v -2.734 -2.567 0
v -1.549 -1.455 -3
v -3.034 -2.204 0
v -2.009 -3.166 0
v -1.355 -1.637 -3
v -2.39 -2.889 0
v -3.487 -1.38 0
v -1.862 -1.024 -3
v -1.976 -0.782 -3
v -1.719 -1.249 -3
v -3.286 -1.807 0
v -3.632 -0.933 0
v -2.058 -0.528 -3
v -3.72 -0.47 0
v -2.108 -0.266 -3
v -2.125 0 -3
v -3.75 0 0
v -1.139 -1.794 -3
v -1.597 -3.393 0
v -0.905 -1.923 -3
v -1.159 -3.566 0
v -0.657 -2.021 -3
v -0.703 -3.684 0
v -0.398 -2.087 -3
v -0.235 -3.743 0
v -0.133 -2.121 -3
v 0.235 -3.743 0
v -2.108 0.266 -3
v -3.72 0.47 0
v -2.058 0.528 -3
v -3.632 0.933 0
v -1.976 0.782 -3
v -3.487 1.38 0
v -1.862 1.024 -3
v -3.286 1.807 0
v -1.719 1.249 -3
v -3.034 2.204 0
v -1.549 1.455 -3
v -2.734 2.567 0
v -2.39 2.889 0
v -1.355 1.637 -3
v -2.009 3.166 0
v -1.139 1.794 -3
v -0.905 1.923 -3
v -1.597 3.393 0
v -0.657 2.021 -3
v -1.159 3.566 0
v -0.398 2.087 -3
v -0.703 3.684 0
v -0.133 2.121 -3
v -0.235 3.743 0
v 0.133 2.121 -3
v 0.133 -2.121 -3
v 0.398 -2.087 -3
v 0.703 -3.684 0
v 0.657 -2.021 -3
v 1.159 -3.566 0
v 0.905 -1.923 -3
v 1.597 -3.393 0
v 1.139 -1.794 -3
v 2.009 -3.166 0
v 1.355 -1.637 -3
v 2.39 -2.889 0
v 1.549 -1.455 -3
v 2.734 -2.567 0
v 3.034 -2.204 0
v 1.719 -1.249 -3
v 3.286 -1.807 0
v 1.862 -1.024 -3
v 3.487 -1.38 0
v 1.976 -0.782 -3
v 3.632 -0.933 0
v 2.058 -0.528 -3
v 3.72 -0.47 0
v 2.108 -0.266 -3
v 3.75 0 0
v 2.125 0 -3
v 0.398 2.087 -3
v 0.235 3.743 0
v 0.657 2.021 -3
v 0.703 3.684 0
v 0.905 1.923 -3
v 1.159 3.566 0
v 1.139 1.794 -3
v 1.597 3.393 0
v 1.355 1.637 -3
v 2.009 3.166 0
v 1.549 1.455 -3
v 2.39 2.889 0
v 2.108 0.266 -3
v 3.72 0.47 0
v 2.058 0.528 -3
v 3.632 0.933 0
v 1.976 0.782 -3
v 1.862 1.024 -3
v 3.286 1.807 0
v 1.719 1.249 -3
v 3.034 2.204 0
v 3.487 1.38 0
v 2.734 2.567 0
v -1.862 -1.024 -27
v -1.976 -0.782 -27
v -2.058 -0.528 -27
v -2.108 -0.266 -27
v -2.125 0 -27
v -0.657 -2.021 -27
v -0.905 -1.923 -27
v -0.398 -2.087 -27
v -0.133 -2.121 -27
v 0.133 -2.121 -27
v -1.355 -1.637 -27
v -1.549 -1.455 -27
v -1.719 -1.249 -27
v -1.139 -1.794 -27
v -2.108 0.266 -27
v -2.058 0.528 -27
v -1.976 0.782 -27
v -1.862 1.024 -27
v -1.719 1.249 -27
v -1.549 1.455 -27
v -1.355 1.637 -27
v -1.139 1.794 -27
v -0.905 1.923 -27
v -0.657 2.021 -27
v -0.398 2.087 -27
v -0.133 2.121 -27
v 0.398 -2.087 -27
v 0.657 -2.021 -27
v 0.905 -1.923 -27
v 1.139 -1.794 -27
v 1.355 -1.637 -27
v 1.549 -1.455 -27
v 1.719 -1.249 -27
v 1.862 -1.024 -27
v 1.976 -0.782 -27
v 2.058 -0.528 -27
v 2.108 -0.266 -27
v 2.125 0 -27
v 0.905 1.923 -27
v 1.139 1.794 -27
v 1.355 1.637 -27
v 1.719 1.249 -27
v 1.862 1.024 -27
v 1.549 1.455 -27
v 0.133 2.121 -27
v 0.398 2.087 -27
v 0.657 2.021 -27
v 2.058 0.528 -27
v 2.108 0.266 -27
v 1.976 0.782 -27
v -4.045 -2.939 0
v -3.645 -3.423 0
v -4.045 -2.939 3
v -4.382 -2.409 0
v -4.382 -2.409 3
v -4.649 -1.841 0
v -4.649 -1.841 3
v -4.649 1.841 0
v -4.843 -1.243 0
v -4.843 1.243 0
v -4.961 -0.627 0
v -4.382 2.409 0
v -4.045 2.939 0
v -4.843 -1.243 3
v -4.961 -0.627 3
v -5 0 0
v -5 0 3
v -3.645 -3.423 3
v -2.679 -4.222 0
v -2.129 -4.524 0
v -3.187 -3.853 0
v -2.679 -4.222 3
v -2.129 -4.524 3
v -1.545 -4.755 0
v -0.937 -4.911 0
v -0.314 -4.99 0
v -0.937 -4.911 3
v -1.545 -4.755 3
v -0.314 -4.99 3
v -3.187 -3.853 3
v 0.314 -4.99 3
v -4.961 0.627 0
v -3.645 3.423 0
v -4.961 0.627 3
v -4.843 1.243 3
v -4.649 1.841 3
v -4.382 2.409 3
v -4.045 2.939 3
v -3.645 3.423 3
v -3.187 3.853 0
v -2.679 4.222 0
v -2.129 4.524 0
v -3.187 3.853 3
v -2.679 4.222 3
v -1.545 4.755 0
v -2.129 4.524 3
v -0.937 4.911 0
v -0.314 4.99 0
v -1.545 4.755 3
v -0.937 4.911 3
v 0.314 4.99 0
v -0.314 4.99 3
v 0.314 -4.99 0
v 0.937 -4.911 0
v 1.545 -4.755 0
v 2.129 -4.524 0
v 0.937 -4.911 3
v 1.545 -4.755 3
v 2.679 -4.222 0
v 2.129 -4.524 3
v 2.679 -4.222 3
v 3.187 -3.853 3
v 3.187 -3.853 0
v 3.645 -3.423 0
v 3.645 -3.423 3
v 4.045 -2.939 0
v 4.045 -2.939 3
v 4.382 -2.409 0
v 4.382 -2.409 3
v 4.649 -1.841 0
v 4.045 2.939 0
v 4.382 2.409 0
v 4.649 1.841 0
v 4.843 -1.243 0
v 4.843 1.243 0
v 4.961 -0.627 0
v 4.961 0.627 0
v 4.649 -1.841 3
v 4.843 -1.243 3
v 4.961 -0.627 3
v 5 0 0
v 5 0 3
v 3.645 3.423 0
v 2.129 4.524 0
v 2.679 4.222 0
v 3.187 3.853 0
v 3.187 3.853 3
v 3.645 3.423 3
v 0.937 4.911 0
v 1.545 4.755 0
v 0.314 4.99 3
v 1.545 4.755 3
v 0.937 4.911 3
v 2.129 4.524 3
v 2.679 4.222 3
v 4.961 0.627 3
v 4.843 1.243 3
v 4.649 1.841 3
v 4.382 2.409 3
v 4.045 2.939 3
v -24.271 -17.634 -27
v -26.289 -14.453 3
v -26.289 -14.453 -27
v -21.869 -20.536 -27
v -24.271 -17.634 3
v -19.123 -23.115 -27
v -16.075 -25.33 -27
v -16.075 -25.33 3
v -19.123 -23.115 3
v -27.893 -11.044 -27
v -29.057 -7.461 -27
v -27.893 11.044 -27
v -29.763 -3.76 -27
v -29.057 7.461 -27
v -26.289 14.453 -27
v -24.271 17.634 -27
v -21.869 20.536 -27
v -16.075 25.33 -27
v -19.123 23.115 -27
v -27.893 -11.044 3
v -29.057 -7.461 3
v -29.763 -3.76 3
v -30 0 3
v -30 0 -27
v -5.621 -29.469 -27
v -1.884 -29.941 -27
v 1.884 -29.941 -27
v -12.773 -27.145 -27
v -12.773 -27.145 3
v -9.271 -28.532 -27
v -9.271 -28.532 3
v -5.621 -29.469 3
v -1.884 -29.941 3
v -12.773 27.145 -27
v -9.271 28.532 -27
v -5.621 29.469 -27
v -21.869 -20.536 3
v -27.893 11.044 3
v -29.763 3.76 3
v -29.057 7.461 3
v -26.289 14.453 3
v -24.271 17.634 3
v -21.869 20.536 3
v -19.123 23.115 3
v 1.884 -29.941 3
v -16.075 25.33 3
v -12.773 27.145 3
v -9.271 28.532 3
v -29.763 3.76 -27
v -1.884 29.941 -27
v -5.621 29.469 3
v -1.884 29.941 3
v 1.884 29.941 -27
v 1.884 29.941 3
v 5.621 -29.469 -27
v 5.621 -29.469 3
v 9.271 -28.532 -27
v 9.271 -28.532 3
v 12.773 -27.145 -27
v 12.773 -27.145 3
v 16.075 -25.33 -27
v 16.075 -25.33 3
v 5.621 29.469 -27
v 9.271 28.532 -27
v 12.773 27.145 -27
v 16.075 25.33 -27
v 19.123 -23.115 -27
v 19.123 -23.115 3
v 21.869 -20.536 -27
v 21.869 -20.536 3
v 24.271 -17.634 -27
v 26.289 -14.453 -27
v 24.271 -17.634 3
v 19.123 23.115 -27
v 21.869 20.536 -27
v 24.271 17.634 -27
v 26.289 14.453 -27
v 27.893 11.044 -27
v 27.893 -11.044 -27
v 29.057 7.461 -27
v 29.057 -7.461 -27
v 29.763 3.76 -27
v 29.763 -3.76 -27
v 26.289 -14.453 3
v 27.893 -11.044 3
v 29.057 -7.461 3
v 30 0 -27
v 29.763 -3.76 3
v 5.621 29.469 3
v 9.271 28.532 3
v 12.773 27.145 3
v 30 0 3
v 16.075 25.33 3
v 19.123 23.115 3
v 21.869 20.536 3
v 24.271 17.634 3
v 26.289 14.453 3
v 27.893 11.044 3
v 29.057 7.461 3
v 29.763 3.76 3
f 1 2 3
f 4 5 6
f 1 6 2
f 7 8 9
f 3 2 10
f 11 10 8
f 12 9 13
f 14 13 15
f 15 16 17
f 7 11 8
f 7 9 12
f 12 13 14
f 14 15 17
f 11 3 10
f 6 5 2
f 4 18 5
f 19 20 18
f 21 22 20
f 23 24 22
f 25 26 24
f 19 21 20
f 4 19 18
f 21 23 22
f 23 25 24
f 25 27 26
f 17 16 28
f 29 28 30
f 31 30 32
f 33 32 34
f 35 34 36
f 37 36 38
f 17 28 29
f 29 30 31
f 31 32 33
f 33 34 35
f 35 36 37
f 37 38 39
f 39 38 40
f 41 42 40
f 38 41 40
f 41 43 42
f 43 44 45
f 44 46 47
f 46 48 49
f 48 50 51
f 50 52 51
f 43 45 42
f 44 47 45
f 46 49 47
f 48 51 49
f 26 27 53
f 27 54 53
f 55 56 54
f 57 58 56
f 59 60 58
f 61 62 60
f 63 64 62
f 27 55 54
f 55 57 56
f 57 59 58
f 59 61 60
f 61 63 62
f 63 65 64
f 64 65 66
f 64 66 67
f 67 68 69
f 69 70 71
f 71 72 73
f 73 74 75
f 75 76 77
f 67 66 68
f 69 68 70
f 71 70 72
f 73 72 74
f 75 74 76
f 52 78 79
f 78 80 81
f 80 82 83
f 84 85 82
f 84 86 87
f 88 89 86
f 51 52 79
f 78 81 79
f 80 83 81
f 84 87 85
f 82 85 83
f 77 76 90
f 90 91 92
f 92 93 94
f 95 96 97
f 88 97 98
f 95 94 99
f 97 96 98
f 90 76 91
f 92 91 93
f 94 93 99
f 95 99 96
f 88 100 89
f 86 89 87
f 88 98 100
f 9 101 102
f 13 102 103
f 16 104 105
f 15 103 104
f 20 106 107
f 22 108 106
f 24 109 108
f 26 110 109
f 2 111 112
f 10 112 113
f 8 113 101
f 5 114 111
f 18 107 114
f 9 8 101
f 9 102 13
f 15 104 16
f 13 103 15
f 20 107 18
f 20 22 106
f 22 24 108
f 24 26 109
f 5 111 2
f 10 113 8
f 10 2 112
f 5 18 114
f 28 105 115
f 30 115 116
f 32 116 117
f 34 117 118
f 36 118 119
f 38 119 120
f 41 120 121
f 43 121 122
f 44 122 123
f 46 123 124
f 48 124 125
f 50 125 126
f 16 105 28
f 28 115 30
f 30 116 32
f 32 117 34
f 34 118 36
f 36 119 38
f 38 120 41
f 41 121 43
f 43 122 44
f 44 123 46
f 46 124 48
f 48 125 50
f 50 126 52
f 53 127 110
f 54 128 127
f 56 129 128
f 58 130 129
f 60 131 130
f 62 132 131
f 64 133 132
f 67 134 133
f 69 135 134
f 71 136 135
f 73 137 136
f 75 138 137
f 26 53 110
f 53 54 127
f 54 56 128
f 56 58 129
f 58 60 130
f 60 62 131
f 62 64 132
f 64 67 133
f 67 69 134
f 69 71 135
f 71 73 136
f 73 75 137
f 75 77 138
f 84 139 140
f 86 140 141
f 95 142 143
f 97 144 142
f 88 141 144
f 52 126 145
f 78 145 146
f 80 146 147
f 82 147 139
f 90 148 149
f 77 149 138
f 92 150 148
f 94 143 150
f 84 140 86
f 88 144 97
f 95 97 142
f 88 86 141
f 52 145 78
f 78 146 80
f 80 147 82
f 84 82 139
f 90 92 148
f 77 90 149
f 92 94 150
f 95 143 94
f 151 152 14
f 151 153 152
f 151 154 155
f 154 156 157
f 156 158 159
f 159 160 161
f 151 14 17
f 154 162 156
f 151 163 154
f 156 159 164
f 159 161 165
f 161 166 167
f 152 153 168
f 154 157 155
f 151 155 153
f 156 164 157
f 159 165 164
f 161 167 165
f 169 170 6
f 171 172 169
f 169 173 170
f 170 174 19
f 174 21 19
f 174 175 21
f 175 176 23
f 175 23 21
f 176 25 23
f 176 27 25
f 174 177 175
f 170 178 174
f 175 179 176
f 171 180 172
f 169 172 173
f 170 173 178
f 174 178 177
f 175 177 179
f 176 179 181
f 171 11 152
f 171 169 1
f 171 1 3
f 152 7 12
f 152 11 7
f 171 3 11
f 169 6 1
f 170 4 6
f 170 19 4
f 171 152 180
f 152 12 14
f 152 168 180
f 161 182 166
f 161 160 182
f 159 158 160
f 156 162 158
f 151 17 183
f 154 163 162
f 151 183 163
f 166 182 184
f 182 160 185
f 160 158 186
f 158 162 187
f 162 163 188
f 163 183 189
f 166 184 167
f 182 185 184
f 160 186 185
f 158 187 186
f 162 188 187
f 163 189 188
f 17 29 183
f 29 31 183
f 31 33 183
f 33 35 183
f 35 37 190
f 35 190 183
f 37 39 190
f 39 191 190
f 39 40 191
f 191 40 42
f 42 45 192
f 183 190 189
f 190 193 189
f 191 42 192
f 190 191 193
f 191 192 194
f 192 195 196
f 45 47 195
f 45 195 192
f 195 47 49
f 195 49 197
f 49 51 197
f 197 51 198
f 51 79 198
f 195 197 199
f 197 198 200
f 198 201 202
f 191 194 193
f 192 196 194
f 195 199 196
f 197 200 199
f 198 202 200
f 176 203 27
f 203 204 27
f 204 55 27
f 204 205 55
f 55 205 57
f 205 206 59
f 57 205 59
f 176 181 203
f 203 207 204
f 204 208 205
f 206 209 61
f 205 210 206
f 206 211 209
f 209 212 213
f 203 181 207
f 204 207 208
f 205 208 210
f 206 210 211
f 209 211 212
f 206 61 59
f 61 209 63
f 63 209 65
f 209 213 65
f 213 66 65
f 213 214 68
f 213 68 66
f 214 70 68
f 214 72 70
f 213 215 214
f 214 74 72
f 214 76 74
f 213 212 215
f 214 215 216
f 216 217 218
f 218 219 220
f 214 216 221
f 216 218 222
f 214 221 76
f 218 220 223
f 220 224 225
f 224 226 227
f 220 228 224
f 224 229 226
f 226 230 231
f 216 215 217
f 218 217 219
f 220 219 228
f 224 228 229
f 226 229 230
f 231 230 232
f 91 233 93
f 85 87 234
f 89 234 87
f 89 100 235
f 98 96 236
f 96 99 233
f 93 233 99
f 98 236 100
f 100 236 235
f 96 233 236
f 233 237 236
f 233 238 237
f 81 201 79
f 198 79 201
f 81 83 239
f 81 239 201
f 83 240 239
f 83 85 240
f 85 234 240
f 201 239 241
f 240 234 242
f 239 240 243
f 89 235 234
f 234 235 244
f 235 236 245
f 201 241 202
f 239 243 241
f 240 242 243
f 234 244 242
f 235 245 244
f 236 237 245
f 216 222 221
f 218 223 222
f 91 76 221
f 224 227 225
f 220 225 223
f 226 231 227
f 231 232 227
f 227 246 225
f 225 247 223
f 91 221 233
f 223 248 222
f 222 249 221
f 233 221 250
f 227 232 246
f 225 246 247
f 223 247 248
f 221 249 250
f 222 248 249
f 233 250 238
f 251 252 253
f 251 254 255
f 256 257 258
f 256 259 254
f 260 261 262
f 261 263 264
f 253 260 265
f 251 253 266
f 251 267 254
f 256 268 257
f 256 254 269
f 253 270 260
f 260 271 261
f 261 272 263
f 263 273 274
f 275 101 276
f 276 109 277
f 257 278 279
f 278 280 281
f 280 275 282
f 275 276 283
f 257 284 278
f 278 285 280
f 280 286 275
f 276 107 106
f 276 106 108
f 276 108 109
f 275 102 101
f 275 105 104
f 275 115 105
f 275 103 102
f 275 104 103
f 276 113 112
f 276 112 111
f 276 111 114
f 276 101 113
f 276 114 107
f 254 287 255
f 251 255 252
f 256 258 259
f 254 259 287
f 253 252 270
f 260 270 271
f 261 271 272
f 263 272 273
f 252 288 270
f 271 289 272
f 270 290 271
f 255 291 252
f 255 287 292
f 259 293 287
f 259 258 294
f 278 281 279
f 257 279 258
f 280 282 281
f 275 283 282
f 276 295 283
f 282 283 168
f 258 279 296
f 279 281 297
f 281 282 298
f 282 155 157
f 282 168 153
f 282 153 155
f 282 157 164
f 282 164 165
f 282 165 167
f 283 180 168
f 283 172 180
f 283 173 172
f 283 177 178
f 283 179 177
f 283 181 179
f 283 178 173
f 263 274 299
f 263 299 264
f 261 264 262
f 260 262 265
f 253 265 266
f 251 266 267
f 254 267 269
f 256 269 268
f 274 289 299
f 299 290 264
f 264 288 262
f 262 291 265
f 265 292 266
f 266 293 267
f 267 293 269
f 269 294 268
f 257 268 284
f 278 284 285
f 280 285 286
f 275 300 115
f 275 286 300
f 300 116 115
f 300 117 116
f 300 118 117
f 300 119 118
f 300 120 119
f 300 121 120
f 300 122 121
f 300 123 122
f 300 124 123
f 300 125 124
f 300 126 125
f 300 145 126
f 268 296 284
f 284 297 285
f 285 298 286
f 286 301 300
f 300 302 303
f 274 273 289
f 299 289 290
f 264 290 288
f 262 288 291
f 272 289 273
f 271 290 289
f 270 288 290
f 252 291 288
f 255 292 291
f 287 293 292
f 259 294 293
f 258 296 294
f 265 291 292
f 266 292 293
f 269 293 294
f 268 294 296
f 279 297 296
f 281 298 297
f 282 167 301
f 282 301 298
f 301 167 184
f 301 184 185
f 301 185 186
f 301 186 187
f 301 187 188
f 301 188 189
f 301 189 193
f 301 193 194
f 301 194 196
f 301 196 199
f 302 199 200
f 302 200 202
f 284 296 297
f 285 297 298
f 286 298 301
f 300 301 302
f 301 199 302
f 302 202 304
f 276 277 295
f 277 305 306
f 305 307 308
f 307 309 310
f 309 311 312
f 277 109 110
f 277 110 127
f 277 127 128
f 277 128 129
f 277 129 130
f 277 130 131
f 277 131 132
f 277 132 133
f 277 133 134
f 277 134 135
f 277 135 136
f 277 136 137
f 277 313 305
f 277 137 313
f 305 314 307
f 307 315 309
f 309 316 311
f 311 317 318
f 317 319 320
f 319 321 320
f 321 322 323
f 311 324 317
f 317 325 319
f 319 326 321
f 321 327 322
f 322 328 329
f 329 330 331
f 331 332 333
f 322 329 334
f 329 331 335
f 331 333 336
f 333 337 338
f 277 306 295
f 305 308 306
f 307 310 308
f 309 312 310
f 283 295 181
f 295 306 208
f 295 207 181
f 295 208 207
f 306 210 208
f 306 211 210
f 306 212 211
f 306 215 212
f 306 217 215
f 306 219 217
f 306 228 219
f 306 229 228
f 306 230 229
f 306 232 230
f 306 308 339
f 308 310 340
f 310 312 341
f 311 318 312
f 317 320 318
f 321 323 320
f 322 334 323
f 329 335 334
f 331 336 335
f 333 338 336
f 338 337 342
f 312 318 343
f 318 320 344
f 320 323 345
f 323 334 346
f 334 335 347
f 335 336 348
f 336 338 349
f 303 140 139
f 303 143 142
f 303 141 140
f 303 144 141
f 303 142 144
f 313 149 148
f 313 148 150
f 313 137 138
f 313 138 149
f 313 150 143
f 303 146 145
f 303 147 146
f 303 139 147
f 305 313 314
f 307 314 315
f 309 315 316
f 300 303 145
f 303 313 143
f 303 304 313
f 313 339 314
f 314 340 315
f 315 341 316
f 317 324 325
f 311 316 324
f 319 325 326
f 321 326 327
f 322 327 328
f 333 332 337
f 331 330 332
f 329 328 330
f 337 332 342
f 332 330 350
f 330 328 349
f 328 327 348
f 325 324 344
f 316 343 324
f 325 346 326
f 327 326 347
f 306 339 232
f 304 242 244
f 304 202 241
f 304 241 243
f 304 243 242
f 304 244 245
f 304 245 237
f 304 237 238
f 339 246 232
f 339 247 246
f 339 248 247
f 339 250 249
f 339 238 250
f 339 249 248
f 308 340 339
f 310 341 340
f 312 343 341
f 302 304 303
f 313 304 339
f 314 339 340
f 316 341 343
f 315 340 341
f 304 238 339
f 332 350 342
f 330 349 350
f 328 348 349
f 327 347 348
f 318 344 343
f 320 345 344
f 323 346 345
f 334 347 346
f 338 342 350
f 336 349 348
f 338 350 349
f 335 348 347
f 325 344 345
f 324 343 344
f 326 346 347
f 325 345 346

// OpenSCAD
$fn = 50;

difference() {
	union() {
		translate(v = [0, 0, -27.0]) {
			cylinder(h = 30, r = 30.0);
		}
	}
	union() {
		translate(v = [0, 0, 0]) {
			rotate(a = [0, 0, 0]) {
				difference() {
					union() {
						translate(v = [0, 0, -30.0]) {
							cylinder(h = 30, r = 2.0);
						}
						translate(v = [0, 0, -3]) {
							cylinder(h = 3, r1 = 2.125, r2 = 3.75);
						}
						translate(v = [0, 0, -30.0]) {
							cylinder(h = 30, r = 2.125);
						}
						translate(v = [0, 0, -30.0]) {
							cylinder(h = 30, r = 2.0);
						}
					}
					union();
				}
			}
		}
		#cylinder(h = 3, r = 5.0);
	}
}
